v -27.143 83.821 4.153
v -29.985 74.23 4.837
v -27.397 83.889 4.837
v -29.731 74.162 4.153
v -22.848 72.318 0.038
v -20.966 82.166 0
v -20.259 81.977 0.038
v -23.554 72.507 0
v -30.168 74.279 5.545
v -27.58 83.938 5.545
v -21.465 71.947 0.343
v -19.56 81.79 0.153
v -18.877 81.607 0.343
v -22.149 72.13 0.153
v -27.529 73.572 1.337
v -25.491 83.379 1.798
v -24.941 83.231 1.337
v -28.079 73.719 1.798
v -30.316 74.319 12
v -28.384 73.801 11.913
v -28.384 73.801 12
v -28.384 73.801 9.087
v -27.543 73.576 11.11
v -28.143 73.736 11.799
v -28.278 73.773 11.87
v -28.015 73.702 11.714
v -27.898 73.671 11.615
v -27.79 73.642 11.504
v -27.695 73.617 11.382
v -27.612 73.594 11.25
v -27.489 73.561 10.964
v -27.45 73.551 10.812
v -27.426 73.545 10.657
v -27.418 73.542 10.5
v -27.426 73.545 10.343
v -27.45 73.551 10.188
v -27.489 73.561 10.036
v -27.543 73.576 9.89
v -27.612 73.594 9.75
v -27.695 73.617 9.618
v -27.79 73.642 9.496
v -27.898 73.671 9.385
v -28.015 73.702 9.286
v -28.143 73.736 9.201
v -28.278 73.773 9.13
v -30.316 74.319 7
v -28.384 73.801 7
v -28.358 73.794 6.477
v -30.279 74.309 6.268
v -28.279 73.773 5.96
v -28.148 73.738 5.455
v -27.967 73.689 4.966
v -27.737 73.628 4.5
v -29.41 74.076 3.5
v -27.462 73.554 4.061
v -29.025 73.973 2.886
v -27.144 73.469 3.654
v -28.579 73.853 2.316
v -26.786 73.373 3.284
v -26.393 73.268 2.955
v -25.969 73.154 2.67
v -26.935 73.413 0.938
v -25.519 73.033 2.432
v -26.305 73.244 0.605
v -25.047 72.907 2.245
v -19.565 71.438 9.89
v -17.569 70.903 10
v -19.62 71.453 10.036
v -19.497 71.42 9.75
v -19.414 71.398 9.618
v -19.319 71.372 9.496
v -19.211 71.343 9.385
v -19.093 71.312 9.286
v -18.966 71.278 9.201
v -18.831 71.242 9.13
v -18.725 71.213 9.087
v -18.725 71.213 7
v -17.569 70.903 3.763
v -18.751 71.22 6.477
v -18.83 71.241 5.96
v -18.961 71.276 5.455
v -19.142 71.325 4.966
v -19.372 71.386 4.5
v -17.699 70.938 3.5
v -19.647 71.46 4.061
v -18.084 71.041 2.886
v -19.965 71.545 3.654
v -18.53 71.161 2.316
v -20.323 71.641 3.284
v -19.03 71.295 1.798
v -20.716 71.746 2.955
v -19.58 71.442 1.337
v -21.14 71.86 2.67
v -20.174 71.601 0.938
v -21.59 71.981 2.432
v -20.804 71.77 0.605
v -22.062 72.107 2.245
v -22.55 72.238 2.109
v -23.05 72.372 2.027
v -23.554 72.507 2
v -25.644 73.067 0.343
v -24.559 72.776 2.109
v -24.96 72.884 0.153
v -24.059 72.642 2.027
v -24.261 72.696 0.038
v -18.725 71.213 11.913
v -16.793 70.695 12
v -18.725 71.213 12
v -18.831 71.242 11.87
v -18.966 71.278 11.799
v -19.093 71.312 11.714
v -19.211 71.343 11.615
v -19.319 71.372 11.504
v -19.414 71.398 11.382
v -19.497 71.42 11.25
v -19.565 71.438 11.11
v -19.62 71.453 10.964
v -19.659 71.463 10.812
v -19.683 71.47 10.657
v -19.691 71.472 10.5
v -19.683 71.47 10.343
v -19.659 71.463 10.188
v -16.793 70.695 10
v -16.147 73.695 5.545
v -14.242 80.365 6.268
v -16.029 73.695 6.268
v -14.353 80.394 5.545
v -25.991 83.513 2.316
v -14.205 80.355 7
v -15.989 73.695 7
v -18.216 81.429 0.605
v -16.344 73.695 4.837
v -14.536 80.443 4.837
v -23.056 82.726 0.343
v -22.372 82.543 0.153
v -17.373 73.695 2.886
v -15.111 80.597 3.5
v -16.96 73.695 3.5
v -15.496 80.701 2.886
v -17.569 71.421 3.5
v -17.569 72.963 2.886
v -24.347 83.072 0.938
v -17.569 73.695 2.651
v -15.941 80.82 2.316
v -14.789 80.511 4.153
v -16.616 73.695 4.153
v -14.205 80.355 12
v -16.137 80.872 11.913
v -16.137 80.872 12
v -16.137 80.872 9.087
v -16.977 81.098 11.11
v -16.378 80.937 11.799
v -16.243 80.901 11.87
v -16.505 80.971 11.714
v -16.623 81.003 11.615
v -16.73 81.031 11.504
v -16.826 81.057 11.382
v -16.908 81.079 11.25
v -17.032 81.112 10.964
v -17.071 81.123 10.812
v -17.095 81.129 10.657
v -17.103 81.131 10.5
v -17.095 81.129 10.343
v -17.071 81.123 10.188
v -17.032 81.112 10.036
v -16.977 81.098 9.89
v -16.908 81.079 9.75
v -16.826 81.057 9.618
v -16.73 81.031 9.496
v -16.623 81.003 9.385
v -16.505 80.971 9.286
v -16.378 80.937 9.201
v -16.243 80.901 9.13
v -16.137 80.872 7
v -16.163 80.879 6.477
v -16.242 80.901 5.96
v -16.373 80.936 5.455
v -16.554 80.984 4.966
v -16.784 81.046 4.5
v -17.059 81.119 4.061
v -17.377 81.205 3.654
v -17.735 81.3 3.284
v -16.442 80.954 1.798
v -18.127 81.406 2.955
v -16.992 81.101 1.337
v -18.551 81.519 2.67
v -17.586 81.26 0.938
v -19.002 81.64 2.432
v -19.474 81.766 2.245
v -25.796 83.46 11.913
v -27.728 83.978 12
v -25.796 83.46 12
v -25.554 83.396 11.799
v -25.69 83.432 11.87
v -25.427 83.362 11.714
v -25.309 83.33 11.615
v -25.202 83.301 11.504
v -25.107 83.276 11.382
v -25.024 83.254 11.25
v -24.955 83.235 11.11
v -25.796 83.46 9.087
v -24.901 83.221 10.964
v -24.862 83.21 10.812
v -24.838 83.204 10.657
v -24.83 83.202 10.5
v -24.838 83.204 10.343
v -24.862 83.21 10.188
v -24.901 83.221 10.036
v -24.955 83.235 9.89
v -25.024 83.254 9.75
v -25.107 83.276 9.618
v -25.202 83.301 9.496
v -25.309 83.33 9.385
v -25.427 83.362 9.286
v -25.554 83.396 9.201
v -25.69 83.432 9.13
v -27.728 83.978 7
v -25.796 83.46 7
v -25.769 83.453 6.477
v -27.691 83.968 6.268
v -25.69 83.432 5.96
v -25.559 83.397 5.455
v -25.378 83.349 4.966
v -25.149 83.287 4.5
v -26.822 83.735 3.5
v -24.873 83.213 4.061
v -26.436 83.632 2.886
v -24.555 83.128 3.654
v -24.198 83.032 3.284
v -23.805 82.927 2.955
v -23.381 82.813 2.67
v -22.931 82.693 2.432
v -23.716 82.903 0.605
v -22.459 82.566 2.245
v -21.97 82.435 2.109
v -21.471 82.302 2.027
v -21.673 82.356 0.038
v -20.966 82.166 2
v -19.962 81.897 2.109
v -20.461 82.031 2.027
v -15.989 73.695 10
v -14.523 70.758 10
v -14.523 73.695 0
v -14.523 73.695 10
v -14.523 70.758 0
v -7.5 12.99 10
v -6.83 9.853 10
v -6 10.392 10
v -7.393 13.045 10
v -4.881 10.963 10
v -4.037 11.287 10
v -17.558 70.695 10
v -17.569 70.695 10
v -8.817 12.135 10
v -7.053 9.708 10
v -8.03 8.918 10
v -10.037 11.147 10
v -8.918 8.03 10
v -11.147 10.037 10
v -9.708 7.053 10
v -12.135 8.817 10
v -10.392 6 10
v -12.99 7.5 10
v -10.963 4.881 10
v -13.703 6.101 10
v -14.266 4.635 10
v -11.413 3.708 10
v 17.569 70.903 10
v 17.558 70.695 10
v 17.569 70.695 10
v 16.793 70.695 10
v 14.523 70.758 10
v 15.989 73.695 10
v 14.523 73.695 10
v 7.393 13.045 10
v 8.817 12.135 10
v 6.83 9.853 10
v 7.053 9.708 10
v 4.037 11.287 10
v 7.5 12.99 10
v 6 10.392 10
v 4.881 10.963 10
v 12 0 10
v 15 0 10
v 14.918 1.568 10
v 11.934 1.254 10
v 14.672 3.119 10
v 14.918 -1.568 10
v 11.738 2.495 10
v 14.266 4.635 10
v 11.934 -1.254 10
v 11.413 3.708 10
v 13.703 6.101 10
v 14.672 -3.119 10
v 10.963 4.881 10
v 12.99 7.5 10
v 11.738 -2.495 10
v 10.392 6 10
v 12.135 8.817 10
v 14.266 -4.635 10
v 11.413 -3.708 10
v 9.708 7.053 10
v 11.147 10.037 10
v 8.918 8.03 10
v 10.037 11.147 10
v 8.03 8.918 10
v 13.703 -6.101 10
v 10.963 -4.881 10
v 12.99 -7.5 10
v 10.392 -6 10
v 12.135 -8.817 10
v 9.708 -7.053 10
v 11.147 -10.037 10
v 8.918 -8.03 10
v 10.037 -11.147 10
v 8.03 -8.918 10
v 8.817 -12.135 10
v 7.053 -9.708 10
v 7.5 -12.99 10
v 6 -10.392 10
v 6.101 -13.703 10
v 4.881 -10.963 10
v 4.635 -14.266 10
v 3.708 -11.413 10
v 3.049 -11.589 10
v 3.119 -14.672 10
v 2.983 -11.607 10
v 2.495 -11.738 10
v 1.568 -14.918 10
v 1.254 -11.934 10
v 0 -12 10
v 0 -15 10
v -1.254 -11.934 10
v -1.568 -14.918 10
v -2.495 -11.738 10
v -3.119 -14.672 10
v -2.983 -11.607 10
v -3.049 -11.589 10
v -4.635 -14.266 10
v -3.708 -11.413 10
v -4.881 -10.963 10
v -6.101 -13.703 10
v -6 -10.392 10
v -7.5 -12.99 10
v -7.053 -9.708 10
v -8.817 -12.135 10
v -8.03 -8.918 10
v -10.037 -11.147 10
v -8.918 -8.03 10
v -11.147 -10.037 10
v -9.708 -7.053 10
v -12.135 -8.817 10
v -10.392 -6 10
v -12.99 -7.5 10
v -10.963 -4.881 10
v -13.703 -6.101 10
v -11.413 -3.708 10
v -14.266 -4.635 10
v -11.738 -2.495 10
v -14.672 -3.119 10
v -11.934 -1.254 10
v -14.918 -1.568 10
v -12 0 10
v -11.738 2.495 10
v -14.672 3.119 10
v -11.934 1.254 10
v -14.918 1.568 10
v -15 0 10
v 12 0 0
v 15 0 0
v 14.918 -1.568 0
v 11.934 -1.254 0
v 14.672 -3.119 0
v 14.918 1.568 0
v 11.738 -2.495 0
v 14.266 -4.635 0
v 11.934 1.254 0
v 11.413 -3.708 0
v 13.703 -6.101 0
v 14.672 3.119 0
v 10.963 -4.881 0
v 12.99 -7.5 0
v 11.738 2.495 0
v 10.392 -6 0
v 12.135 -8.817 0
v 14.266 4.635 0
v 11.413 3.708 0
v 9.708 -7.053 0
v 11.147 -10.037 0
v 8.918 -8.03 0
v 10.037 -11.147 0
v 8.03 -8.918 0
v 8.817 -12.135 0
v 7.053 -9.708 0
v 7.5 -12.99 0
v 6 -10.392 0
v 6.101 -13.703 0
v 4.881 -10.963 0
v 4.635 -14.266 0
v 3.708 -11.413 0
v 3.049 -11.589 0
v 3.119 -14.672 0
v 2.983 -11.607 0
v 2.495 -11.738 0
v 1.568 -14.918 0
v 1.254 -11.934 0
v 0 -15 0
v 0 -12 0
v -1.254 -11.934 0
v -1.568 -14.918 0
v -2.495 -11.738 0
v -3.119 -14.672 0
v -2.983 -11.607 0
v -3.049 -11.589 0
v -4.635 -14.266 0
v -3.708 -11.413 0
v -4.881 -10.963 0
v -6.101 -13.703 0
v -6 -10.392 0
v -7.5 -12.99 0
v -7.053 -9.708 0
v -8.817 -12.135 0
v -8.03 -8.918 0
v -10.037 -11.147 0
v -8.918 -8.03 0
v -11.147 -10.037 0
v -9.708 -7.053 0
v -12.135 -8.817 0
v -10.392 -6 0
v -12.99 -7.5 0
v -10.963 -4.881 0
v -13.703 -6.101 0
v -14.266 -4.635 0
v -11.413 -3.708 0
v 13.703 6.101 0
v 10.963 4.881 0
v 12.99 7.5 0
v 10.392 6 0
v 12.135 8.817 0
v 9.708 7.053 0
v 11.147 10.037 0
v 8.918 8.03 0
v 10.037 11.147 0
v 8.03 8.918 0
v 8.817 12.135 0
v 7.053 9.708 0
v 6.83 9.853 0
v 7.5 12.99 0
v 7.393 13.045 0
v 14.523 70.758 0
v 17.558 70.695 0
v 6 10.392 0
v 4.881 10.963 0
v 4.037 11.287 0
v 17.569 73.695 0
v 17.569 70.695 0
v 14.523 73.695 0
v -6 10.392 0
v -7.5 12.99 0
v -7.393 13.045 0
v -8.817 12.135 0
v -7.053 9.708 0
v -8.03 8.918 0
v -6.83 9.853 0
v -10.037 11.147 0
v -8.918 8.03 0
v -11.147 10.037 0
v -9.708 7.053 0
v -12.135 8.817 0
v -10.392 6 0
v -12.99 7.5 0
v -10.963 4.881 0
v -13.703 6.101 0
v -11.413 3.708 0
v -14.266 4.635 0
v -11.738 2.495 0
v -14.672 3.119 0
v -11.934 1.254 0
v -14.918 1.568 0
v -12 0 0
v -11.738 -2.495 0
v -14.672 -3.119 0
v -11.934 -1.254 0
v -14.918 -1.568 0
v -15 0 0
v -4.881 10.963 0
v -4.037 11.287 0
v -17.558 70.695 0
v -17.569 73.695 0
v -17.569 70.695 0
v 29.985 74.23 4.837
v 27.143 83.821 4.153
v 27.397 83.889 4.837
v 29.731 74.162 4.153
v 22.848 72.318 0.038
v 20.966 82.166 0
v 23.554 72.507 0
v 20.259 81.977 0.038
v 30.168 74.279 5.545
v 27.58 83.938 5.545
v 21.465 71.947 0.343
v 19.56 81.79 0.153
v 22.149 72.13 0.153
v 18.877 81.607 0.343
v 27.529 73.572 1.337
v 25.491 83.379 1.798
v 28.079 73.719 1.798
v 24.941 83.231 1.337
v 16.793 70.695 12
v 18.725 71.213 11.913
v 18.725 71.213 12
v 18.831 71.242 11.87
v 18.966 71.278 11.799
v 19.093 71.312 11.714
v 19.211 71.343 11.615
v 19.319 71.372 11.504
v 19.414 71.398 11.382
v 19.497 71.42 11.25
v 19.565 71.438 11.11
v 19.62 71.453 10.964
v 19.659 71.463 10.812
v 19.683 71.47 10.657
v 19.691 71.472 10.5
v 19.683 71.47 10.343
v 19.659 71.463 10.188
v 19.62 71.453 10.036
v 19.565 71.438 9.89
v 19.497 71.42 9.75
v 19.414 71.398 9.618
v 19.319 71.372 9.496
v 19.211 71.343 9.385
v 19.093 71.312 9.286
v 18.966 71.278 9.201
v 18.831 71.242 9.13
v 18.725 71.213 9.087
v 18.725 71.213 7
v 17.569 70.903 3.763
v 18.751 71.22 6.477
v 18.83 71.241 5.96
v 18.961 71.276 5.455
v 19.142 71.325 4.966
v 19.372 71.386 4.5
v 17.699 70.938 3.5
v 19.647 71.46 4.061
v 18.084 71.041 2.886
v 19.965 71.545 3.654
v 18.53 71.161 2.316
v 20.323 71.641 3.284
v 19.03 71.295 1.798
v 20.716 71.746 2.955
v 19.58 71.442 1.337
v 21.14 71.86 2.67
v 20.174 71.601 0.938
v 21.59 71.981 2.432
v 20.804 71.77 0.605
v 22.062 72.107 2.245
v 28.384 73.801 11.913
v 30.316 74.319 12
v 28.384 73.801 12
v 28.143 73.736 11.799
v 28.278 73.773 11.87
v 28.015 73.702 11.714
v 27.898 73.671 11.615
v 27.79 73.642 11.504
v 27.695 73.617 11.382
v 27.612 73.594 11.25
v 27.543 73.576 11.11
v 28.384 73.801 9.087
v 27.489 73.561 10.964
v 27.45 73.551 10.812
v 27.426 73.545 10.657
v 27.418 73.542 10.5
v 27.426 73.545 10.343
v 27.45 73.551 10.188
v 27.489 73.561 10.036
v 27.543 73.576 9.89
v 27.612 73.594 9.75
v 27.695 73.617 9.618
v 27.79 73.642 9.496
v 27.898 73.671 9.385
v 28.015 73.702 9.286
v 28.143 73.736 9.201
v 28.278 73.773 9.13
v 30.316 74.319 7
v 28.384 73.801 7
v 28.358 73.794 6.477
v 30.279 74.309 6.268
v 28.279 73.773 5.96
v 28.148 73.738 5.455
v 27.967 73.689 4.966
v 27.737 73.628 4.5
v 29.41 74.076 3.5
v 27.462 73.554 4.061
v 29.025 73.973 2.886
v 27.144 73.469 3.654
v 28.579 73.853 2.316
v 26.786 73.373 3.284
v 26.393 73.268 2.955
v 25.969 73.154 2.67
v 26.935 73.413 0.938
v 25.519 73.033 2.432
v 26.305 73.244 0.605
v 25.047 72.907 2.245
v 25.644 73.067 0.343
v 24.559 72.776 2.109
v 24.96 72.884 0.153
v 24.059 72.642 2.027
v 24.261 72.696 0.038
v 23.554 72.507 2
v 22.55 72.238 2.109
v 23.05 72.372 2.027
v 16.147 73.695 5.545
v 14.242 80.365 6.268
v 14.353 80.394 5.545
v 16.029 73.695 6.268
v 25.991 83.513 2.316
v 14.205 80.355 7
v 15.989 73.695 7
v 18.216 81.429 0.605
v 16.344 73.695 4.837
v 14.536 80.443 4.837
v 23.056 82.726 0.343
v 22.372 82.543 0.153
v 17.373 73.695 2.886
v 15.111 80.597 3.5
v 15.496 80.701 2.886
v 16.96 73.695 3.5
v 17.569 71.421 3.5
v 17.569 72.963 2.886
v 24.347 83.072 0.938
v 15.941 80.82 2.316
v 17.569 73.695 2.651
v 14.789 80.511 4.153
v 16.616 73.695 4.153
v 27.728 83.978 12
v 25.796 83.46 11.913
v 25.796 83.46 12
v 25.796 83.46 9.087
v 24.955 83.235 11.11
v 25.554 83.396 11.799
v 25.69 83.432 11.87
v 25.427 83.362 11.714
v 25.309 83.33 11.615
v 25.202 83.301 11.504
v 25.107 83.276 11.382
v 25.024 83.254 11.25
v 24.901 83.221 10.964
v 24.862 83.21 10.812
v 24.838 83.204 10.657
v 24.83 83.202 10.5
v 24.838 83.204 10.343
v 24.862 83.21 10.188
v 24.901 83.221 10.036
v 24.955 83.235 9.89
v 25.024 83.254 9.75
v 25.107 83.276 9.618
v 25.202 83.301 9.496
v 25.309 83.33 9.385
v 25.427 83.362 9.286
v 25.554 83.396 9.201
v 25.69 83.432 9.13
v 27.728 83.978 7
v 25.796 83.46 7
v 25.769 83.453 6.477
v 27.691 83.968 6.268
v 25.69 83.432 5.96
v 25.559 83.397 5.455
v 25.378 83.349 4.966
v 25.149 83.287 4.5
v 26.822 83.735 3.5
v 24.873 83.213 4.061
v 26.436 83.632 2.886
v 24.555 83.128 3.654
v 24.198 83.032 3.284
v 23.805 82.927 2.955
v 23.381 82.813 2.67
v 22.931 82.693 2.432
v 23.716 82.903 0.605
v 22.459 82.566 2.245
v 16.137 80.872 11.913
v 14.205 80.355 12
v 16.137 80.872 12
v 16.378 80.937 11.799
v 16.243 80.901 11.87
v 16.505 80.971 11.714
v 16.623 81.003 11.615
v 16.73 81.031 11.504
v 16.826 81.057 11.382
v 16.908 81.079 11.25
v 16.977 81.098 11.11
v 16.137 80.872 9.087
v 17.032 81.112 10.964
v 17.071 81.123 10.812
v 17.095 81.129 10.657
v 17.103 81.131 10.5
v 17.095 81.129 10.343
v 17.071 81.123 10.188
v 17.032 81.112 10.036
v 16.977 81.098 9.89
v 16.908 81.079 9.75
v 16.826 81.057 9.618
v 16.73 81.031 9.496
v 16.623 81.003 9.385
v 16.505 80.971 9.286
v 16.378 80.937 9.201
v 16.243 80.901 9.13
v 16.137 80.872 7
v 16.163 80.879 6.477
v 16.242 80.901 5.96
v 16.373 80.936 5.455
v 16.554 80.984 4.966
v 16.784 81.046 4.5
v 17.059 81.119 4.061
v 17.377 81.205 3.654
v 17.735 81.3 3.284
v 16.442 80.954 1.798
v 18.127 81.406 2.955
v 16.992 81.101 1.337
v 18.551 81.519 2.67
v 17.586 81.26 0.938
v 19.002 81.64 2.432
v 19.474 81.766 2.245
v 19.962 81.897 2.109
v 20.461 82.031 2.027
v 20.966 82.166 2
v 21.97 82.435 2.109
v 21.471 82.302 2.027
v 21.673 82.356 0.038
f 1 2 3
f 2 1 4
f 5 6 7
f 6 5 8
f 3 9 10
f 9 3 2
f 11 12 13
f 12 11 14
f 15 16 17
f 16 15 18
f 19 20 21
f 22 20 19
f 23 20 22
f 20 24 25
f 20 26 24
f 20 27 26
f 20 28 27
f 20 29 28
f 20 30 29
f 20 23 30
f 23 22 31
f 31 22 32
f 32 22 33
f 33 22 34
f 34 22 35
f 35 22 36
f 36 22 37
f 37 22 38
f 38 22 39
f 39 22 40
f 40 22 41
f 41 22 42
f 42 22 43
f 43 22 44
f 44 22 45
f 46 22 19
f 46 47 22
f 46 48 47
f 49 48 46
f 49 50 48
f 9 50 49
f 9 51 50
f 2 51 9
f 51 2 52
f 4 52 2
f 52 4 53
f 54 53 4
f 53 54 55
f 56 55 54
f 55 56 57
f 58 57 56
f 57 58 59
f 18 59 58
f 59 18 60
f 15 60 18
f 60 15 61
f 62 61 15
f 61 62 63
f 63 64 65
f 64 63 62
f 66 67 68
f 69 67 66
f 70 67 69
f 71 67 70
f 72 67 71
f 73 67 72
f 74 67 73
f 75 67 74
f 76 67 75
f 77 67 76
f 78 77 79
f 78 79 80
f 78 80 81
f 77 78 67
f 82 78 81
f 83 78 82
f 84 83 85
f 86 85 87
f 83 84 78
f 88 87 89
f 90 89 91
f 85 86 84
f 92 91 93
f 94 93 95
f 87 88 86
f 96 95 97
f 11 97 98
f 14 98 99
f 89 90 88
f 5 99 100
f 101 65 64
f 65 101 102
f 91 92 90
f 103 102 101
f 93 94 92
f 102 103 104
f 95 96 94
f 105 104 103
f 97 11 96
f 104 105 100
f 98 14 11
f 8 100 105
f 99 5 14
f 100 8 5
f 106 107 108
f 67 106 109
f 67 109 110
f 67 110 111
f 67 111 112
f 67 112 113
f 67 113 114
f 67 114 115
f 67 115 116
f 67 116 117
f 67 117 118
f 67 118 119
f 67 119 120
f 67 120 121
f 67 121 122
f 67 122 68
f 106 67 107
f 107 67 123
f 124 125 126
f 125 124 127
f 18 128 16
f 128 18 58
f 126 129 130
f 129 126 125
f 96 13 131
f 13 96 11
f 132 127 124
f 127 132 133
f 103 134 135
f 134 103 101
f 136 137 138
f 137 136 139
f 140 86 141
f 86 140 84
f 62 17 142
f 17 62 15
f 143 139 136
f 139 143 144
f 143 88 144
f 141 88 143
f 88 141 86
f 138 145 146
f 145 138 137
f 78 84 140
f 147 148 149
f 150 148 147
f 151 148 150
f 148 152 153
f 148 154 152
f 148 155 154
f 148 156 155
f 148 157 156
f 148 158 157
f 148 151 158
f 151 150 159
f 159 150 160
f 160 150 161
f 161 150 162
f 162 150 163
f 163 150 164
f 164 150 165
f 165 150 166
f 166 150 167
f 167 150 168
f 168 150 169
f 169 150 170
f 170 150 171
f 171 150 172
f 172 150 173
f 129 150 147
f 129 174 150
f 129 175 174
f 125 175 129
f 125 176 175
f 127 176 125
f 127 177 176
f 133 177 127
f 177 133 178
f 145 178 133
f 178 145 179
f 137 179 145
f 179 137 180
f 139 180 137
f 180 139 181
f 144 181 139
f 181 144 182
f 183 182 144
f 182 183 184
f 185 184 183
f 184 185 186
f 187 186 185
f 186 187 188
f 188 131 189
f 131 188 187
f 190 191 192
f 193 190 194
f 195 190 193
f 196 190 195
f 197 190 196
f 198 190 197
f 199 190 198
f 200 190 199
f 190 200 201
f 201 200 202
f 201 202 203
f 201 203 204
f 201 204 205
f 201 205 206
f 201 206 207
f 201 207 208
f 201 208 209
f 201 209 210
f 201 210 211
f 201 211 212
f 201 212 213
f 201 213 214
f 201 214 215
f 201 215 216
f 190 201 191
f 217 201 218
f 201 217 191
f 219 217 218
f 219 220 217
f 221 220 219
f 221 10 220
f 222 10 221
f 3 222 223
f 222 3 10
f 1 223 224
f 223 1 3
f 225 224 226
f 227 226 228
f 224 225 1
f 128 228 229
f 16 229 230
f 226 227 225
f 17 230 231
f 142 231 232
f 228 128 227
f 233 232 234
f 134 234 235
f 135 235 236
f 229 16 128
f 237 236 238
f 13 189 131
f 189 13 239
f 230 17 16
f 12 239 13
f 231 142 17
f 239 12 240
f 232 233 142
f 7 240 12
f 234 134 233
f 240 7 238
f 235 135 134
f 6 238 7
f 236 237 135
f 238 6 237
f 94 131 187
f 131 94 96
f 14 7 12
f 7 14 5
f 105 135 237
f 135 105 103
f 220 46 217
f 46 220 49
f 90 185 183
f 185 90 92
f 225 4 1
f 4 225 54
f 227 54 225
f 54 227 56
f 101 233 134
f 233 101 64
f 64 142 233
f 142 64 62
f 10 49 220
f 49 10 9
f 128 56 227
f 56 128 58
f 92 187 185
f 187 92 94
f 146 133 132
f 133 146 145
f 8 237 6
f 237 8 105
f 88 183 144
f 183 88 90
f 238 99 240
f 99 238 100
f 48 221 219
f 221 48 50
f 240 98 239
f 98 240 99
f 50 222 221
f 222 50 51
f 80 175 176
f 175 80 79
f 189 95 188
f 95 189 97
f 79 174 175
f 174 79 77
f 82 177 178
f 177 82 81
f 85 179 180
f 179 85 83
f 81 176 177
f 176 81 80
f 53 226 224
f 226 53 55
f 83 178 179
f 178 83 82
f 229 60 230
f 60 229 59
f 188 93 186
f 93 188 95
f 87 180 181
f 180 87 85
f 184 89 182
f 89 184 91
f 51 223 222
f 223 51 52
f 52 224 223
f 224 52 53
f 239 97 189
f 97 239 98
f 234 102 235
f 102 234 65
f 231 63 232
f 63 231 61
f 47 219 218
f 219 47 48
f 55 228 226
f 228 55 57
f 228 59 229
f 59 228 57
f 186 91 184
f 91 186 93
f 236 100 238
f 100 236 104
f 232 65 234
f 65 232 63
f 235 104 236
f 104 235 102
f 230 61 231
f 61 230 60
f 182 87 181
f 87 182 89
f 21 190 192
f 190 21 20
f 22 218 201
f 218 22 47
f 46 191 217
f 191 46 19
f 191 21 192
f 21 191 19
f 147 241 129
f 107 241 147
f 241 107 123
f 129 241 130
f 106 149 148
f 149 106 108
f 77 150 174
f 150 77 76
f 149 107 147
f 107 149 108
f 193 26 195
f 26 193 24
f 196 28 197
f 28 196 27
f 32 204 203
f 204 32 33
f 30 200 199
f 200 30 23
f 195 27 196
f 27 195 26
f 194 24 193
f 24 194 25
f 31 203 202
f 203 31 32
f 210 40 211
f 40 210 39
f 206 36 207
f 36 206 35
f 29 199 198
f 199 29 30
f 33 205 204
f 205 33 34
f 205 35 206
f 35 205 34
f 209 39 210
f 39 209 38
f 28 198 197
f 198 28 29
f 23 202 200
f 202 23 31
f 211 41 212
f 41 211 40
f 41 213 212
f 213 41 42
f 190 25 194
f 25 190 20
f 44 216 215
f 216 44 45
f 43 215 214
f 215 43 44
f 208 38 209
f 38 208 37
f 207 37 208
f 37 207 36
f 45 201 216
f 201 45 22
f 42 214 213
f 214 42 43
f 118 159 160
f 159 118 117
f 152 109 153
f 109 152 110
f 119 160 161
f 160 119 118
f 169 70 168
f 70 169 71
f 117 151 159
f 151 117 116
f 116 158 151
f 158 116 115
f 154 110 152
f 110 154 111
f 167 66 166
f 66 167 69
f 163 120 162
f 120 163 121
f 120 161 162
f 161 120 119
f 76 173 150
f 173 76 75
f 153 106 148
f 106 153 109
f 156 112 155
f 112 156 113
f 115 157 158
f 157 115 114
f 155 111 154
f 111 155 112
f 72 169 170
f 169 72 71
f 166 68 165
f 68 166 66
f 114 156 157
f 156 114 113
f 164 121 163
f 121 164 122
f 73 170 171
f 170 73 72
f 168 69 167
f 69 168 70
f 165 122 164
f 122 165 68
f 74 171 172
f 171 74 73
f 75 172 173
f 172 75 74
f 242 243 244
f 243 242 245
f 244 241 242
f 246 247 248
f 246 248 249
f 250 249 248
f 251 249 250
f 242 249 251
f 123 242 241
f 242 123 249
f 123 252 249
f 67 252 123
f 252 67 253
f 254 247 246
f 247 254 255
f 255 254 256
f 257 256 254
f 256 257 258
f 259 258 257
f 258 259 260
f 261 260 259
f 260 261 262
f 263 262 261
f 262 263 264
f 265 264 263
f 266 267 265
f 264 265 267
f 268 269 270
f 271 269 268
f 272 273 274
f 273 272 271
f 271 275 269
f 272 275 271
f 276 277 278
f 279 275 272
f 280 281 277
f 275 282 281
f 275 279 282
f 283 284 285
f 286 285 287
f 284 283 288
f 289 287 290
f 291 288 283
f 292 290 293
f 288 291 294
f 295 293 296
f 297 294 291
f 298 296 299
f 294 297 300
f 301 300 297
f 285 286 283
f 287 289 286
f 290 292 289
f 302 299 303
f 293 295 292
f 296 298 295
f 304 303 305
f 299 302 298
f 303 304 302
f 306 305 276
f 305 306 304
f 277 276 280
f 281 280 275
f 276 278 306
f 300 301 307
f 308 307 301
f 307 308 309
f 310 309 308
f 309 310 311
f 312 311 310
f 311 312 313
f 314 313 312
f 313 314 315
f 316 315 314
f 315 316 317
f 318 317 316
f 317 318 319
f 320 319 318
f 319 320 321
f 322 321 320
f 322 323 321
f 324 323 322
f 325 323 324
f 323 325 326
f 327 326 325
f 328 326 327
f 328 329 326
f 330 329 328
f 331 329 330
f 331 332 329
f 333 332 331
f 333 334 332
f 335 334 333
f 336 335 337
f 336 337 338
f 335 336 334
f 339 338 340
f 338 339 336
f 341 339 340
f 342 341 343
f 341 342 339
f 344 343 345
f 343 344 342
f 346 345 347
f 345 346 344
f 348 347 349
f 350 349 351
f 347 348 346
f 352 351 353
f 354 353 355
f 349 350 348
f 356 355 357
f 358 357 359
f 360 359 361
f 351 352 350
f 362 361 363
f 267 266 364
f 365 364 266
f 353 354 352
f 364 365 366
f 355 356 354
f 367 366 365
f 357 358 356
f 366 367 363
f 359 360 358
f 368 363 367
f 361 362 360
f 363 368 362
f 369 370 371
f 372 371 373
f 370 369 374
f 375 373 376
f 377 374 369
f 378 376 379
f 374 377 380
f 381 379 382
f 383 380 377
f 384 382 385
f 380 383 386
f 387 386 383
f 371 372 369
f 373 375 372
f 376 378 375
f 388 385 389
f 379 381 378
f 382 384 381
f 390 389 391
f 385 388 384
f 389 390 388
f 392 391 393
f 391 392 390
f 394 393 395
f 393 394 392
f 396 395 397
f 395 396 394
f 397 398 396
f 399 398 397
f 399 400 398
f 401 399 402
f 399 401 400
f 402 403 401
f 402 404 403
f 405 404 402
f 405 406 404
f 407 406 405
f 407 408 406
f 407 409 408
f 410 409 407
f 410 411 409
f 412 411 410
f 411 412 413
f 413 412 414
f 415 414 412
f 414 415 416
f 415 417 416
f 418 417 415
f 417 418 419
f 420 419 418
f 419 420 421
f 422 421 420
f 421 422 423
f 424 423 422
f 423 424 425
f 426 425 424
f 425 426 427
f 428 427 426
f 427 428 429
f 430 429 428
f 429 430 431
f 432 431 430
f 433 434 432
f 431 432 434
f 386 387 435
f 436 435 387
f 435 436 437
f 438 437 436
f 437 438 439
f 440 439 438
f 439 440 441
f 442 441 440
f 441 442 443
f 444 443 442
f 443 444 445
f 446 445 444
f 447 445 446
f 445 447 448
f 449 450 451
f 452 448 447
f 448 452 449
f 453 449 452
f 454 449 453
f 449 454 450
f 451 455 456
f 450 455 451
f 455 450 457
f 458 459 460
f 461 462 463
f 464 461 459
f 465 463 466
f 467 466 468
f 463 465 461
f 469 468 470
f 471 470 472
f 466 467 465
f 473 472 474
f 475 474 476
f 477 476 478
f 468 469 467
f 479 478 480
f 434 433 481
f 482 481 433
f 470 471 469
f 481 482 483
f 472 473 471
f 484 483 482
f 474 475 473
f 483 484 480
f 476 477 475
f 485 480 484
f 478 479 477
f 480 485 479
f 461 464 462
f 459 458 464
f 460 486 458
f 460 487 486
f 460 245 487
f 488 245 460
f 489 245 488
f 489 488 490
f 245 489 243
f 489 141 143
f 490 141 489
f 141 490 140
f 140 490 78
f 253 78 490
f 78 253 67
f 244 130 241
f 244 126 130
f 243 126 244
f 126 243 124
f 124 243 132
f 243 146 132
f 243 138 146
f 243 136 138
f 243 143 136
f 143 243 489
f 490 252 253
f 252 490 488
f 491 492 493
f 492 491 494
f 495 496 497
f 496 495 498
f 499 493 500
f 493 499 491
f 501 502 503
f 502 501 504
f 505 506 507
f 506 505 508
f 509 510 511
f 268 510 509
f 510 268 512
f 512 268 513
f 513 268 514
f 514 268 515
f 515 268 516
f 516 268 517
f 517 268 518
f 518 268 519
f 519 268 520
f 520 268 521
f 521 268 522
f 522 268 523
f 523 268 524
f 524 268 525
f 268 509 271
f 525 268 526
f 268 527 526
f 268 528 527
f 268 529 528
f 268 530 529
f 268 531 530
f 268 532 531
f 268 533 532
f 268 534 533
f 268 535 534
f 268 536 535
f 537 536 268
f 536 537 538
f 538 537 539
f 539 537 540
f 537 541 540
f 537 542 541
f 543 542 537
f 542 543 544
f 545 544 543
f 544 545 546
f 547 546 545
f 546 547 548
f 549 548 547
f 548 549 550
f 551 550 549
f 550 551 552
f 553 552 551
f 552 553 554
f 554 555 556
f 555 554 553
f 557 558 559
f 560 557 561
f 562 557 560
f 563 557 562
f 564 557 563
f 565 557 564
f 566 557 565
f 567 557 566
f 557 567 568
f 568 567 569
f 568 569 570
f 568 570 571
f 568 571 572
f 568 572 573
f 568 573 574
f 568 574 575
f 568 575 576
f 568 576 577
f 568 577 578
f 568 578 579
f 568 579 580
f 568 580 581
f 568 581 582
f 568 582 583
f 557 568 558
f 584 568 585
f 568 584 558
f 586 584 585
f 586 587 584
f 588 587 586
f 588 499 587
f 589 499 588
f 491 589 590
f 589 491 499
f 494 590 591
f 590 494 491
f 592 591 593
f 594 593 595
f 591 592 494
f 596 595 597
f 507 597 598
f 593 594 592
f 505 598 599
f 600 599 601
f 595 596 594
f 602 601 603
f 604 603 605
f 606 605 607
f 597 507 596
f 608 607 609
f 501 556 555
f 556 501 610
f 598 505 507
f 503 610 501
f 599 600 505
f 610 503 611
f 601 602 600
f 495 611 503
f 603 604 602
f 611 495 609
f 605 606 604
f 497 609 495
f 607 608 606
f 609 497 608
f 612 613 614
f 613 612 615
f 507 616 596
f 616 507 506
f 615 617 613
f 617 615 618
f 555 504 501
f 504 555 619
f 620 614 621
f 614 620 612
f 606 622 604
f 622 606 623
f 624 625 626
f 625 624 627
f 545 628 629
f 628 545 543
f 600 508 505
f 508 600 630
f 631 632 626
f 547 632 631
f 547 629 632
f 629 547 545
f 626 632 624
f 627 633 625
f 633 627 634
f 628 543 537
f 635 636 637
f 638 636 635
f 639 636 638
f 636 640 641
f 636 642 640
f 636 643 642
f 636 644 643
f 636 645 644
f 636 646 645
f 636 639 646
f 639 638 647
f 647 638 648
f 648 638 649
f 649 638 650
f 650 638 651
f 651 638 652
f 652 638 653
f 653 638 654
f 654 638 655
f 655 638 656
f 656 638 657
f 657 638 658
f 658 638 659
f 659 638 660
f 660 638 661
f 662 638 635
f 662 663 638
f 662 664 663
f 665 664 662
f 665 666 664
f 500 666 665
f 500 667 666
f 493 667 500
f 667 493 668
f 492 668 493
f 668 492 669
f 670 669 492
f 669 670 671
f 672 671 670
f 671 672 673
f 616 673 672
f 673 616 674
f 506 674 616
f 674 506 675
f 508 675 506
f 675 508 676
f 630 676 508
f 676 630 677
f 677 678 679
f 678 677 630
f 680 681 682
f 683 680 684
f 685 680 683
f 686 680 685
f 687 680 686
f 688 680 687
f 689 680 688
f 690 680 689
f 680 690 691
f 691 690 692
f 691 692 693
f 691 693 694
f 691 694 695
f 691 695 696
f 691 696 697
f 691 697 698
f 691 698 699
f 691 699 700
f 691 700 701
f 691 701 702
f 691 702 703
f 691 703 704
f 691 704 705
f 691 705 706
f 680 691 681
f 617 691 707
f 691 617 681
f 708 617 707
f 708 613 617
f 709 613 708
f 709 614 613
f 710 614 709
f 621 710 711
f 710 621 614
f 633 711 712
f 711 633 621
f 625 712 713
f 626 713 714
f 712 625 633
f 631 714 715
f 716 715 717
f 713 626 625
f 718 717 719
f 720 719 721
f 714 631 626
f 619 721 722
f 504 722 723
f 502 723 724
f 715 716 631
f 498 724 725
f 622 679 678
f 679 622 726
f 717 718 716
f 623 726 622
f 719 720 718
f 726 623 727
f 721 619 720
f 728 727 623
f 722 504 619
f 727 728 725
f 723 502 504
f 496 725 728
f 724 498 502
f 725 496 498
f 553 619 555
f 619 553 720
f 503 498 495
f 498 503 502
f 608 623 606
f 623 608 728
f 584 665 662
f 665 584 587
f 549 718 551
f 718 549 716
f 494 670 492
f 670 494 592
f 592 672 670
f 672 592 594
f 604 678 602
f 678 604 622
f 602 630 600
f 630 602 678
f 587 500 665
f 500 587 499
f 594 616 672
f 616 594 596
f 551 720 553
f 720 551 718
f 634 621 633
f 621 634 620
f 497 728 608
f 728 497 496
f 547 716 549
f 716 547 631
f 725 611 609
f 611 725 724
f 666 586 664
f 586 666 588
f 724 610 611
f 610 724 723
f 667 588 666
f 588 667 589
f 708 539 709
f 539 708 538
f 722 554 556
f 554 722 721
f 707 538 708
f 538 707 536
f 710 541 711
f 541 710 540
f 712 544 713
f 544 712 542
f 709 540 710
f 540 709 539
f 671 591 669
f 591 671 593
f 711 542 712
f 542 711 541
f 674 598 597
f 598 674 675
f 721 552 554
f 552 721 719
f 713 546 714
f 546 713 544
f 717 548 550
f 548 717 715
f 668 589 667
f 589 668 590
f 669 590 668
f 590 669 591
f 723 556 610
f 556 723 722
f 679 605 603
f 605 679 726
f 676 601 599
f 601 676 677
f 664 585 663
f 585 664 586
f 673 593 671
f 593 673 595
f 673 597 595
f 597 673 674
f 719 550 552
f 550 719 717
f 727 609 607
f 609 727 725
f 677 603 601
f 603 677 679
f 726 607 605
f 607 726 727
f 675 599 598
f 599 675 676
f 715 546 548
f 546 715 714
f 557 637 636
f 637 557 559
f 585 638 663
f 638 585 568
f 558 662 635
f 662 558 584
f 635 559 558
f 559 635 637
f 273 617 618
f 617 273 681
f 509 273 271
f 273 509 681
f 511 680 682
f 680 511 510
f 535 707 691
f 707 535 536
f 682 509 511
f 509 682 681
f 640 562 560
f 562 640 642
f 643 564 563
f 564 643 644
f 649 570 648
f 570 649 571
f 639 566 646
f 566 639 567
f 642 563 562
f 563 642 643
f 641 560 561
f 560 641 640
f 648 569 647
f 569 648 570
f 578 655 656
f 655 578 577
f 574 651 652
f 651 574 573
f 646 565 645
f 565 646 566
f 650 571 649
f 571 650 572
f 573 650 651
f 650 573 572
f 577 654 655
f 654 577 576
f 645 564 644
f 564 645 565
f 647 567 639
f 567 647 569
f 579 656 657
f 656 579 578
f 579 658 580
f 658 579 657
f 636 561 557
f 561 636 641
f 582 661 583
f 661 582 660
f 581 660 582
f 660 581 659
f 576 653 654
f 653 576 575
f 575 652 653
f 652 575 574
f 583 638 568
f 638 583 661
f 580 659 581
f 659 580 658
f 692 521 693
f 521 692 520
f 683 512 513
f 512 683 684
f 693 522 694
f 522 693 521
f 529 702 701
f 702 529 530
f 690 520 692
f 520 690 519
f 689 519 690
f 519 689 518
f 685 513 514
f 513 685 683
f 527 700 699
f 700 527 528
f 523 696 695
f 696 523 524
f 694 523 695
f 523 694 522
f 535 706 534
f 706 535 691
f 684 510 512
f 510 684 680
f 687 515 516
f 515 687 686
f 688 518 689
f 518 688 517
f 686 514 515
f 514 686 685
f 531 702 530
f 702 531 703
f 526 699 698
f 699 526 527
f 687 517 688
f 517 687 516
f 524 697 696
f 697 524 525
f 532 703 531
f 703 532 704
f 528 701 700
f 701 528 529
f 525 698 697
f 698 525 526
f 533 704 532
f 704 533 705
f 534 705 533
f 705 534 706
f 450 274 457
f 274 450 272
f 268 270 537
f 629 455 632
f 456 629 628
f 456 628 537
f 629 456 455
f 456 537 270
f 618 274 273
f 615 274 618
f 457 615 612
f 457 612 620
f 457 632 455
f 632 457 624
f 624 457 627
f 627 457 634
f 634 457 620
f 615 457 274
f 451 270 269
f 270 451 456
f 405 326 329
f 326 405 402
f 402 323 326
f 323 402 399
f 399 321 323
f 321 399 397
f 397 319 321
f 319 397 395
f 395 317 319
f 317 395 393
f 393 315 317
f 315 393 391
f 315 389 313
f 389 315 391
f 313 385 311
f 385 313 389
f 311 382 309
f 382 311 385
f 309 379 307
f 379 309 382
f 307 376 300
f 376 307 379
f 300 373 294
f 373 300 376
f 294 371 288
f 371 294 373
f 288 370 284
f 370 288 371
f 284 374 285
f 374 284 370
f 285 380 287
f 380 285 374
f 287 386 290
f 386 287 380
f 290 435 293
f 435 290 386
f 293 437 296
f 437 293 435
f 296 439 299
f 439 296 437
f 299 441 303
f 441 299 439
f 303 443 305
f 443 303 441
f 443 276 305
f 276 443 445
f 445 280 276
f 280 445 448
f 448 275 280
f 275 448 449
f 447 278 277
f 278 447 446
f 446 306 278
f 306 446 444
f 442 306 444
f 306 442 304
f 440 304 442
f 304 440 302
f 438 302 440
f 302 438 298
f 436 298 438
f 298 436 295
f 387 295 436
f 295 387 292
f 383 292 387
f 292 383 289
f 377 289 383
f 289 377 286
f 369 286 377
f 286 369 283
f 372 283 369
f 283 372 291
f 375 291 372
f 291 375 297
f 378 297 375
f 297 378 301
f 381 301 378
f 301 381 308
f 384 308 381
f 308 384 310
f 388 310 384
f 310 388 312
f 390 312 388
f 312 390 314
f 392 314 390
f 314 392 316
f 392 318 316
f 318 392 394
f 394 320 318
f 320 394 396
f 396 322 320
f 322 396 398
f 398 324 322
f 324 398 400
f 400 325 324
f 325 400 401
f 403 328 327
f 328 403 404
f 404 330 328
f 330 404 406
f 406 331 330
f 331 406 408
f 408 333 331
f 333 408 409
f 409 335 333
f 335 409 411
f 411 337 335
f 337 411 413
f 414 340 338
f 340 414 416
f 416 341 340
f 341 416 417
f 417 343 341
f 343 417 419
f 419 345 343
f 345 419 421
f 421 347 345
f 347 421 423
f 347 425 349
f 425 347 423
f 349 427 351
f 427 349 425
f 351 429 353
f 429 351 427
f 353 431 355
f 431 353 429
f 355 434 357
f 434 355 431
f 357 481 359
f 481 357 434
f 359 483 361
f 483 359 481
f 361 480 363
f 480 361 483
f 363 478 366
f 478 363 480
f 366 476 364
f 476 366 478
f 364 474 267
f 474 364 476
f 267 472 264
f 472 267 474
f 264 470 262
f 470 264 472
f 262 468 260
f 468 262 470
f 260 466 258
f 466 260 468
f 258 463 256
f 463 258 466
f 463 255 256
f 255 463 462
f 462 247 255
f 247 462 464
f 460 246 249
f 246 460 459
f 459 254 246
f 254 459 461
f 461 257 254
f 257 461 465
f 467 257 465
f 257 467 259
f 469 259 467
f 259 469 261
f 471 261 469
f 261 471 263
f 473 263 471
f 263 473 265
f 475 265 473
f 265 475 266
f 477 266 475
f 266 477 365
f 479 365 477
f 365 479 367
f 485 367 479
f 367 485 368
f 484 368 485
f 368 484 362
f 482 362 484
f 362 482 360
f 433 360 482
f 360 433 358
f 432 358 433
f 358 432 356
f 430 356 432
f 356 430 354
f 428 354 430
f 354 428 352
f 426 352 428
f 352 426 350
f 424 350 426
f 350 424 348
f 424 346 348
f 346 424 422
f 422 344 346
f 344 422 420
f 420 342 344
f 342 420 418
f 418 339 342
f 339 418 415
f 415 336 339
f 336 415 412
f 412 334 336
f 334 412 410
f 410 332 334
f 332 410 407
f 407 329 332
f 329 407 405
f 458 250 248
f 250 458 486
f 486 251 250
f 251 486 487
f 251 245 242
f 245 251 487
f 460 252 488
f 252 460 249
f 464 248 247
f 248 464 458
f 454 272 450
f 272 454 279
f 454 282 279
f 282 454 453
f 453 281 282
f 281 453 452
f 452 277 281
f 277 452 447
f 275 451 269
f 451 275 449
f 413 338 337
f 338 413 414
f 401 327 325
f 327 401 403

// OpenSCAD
/*************************************************************************************
 *
 * Parametric Multimeter Probe Tweezer
 *
 *************************************************************************************
 *
 * THE SOFTWARE IS PROVIDED "AS IS", WITHOUT WARRANTY OF ANY KIND, EXPRESS OR IMPLIED,
 * INCLUDING BUT NOT LIMITED TO THE WARRANTIES OF MERCHANTABILITY, FITNESS FOR A
 * PARTICULAR PURPOSE AND NONINFRINGEMENT. IN NO EVENT SHALL THE AUTHOR OR COPYRIGHT
 * HOLDER BE LIABLE FOR ANY CLAIM, DAMAGES OR OTHER LIABILITY, WHETHER IN AN ACTION
 * OF CONTRACT, TORT OR OTHERWISE, ARISING FROM, OUT OF OR IN CONNECTION WITH THE
 * SOFTWARE OR THE USE OR OTHER DEALINGS IN THE SOFTWARE.
 *
 * IT IS NOT PERMITTED TO MODIFY THIS COMMENT BLOCK.
 *
 * (c)2025, Claude "Tryphon" Theroux, Montreal, Quebec, Canada
 * http://www.ctheroux.com/
 *
 *************************************************************************************/

// Tweezer thickness in mm
lct_TweezerThickness = 3;

// Tweezer height in mm
lct_TweezerHeight = 10;

// Tweezer angle in degree
lct_TweezerAngle = 20;

// Ring external diameter in mm
lct_TweezerRingExternalDiameter = 30;

// Tweezer arm length excluding the ring in mm
lct_TweezerArmLength = 60;

// Probe holder width in mm
ProbeHolderWidth = 10;

// Probe holder diameter in mm
lct_ProbeDiameter = 10;

// Probe holder thickness in mm
lct_ProbeHolderThickness = 2;

// Probe holder angle in degree
ProbeHolderAngle = 15;

// Probe holder grabber in mm
ProbeHolderGrabberDiameter = 3;

$fn = 60;

lct_Debug = true;

module __Customizer_Limit__ () {}

/*************************************************************************************
 *
 * Nothing shall be modified below this line
 *
 *************************************************************************************/

lct_TweezerRingInternalDiameter = (lct_TweezerRingExternalDiameter - lct_TweezerThickness * 2);
lct_HiddenArmVerticalHeight = (lct_TweezerRingExternalDiameter - lct_TweezerThickness * 2) / ( 1 + tan(lct_TweezerAngle / 2)^2);
lct_HiddenArmHorizontalLength = lct_HiddenArmVerticalHeight * tan(lct_TweezerAngle / 2);
lct_ArmVerticalLength = lct_TweezerArmLength * cos(lct_TweezerAngle / 2);
lct_ArmHorizontalLength = lct_TweezerArmLength * sin(lct_TweezerAngle / 2);
lct_ArmOutsideHorizontalOffset = lct_TweezerThickness / cos(lct_TweezerAngle / 2);
lct_ArmOutsideVerticalOffset = sqrt(((lct_TweezerRingInternalDiameter / 2)^2 - lct_ArmOutsideHorizontalOffset^2));
lct_holderHorizontalOffset = lct_HiddenArmHorizontalLength + lct_ArmHorizontalLength + lct_ArmOutsideHorizontalOffset;
lct_holderExternalDiameter = lct_ProbeDiameter + lct_ProbeHolderThickness * 2;

module lct_Debug(p_EnableDebug = false) {
    if( p_EnableDebug ) {
        echo("lct_TweezerRingInternalDiameter:", lct_TweezerRingInternalDiameter);
        echo("lct_HiddenArmVerticalHeight:", lct_HiddenArmVerticalHeight);
        echo("lct_HiddenArmHorizontalLength:", lct_HiddenArmHorizontalLength);
        echo("lct_ArmVerticalLength:", lct_ArmVerticalLength);
        echo("lct_ArmHorizontalLength:", lct_ArmHorizontalLength);
        echo("lct_ArmOutsideHorizontalOffset:", lct_ArmOutsideHorizontalOffset);
        echo("lct_ArmOutsideVerticalOffset:", lct_ArmOutsideVerticalOffset);
        echo("lct_holderHorizontalOffset:", lct_holderHorizontalOffset);
    }
}

lct_Debug(lct_Debug);

lct_ExternalArms = [ [ -lct_ArmOutsideHorizontalOffset, 0 ], [ -lct_HiddenArmHorizontalLength - lct_ArmHorizontalLength - lct_ArmOutsideHorizontalOffset, lct_HiddenArmVerticalHeight + lct_ArmVerticalLength ], [ lct_HiddenArmHorizontalLength + lct_ArmHorizontalLength + lct_ArmOutsideHorizontalOffset, lct_HiddenArmVerticalHeight + lct_ArmVerticalLength ], [ lct_ArmOutsideHorizontalOffset, 0 ] ];

lct_InternalArms = [ [ 0, 0 ], [ -lct_HiddenArmHorizontalLength - lct_ArmHorizontalLength, lct_HiddenArmVerticalHeight + lct_ArmVerticalLength ], [ lct_HiddenArmHorizontalLength + lct_ArmHorizontalLength, lct_HiddenArmVerticalHeight + lct_ArmVerticalLength ] ];



lct_HiddenArms = [ [ 0, 0 ], [ -lct_HiddenArmHorizontalLength, lct_HiddenArmVerticalHeight ], [ lct_HiddenArmHorizontalLength, lct_HiddenArmVerticalHeight ] ];

module lct_Ring(p_ExternalArms) {
    linear_extrude(lct_TweezerHeight) difference() {
        circle(d = lct_TweezerRingExternalDiameter);
        color("red") translate( [ 0, -lct_ArmOutsideVerticalOffset, 0 ] ) polygon(p_ExternalArms);
        circle(d = lct_TweezerRingInternalDiameter);
    }
}

module lct_Arms(p_ExternalArms, p_InternalArms) {
    difference() {
        linear_extrude(lct_TweezerHeight) difference() {
            translate( [ 0, -lct_ArmOutsideVerticalOffset, 0 ] ) polygon(p_ExternalArms);
            translate( [ 0, -lct_ArmOutsideVerticalOffset, 0 ] ) polygon(p_InternalArms);
            circle(d = lct_TweezerRingInternalDiameter);
        }
    }
}

module lct_ProbeHolders() {

    halfProbeHolderSize = lct_holderExternalDiameter / 2;
    halfProbeSize = lct_ProbeDiameter / 2;
    
    cube( [ lct_ArmOutsideHorizontalOffset, lct_TweezerThickness, lct_TweezerHeight ] );
    
    holderOffset = lct_ArmOutsideHorizontalOffset - lct_TweezerThickness * sin(ProbeHolderAngle);

    translate( [ lct_TweezerThickness * sin(ProbeHolderAngle), 0, 0 ] ) rotate( [ 0, 0, -ProbeHolderAngle ] ) translate( [ -halfProbeHolderSize, lct_TweezerHeight, 0  ] ) rotate( [ 90, 0, 0] ) translate( [ 0, halfProbeHolderSize, 0  ] ) 
    
    
    union() {
        difference() {
            cylinder(d = lct_holderExternalDiameter, h = ProbeHolderWidth);
            cylinder(d = lct_ProbeDiameter, h = ProbeHolderWidth);
            translate( [ -lct_holderExternalDiameter / 2, 0, 0 ] ) cube( [ lct_holderExternalDiameter, lct_holderExternalDiameter, ProbeHolderWidth ] );
        }
        translate( [ -halfProbeSize - lct_ProbeHolderThickness, 0, 0 ] ) cube( [ lct_ProbeHolderThickness, halfProbeSize, ProbeHolderWidth ] );
        translate( [ halfProbeSize, 0, 0 ] ) cube( [ lct_ProbeHolderThickness, halfProbeSize, ProbeHolderWidth ] );

        translate( [ -(lct_ProbeDiameter - ProbeHolderGrabberDiameter) / 2 - lct_ProbeHolderThickness, halfProbeSize - ProbeHolderGrabberDiameter / 2, 0 ] ) cylinder(d = ProbeHolderGrabberDiameter, h = ProbeHolderWidth);
        translate( [ (lct_ProbeDiameter - ProbeHolderGrabberDiameter) / 2 + lct_ProbeHolderThickness, halfProbeSize - ProbeHolderGrabberDiameter / 2, 0 ] ) cylinder(d = ProbeHolderGrabberDiameter, h = ProbeHolderWidth);
    }
}

////////////////////////////////////////////////////////////////////////////////
//
// Tweezer generation
//

lct_Ring(lct_ExternalArms);
lct_Arms(lct_ExternalArms, lct_InternalArms);
translate( [ -lct_holderHorizontalOffset, lct_ArmVerticalLength + lct_ArmOutsideVerticalOffset, 0 ] ) lct_ProbeHolders();
mirror([ 1, 0, 0  ]) translate( [ -lct_holderHorizontalOffset, lct_ArmVerticalLength + lct_ArmOutsideVerticalOffset, 0 ] ) lct_ProbeHolders();
